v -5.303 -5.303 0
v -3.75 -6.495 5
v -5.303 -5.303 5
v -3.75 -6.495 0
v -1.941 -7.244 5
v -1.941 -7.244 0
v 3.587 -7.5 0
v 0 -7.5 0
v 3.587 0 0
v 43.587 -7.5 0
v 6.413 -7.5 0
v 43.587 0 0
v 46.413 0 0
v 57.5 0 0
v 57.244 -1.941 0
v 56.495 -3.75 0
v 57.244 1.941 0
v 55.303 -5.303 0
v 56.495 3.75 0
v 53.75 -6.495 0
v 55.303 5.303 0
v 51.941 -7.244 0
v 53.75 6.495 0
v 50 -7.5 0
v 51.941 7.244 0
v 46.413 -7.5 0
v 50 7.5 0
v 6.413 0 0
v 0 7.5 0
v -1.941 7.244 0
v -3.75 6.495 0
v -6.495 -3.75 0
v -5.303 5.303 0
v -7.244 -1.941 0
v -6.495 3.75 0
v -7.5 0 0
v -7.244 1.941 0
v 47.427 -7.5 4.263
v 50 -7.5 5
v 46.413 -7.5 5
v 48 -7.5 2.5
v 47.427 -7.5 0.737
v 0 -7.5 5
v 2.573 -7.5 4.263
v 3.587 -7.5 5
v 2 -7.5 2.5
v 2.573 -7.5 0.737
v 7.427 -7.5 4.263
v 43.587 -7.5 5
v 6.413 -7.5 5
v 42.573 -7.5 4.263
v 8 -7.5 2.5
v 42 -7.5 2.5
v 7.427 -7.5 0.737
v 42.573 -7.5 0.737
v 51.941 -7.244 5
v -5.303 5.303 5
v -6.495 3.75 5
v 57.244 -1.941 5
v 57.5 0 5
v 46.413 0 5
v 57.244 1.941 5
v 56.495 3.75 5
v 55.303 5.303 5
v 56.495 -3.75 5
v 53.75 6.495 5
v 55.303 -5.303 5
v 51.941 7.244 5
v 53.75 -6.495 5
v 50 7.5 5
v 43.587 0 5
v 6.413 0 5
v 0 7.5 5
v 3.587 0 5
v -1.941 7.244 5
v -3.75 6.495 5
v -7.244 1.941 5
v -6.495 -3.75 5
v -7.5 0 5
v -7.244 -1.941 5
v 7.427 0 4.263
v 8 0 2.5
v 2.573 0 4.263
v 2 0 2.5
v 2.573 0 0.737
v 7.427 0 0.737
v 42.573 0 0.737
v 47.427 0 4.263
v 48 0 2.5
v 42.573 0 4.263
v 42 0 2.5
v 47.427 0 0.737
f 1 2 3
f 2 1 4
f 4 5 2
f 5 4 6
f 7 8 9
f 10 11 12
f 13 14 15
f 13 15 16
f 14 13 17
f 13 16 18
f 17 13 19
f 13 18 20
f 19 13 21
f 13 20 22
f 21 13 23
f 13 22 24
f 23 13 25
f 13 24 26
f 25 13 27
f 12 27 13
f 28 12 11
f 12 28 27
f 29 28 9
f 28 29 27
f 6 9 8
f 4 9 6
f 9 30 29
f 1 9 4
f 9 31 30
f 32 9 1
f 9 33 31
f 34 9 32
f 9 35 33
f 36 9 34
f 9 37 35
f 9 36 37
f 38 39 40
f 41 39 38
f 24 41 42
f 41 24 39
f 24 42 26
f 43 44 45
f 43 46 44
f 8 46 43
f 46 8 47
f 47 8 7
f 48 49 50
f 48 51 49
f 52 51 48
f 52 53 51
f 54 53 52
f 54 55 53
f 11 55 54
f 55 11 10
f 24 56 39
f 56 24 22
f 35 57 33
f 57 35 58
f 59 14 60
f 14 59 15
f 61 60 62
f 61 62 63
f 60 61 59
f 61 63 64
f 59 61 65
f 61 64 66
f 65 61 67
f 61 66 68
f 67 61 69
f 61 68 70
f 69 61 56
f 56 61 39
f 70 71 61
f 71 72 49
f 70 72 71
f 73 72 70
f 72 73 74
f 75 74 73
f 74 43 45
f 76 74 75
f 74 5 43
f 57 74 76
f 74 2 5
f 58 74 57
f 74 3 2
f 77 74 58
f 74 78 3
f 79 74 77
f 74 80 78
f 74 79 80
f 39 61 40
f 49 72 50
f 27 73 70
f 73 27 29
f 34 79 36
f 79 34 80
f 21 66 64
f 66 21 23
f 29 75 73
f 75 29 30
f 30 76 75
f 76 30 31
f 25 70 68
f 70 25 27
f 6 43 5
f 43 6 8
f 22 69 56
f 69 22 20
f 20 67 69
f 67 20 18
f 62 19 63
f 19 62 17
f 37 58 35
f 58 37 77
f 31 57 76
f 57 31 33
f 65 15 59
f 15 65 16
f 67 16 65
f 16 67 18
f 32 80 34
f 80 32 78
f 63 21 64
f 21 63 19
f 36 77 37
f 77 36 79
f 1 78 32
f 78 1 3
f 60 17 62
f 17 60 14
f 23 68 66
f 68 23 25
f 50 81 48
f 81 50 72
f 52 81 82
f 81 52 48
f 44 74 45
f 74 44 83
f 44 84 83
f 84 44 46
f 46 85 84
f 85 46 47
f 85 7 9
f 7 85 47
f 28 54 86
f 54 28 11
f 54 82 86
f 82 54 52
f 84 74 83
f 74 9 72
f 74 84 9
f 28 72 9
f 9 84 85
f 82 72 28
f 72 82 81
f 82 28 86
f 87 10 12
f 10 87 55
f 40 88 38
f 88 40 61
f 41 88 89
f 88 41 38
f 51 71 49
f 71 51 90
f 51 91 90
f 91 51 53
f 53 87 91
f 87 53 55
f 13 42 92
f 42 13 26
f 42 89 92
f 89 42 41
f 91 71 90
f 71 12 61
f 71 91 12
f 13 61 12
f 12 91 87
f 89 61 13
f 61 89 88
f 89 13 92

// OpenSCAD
module link_plate() {
    // Dimensions
    plate_length = 50; // Length of the plate
    plate_width = 15;  // Width of the plate
    plate_thickness = 5; // Thickness of the plate
    hole_diameter = 6; // Diameter of the holes
    hole_offset = 5; // Distance from the center of the holes to the ends of the plate

    // Create the main body of the plate
    difference() {
        // Rounded rectangle
        hull() {
            translate([0, 0, 0]) 
                cylinder(r=plate_width/2, h=plate_thickness);
            translate([plate_length, 0, 0]) 
                cylinder(r=plate_width/2, h=plate_thickness);
        }
        // Subtract holes
        translate([hole_offset, 0, plate_thickness/2])
            rotate([90, 0, 0])
                cylinder(r=hole_diameter/2, h=plate_width+1);
        translate([plate_length - hole_offset, 0, plate_thickness/2])
            rotate([90, 0, 0])
                cylinder(r=hole_diameter/2, h=plate_width+1);
    }
}

// Render the link plate
link_plate();
